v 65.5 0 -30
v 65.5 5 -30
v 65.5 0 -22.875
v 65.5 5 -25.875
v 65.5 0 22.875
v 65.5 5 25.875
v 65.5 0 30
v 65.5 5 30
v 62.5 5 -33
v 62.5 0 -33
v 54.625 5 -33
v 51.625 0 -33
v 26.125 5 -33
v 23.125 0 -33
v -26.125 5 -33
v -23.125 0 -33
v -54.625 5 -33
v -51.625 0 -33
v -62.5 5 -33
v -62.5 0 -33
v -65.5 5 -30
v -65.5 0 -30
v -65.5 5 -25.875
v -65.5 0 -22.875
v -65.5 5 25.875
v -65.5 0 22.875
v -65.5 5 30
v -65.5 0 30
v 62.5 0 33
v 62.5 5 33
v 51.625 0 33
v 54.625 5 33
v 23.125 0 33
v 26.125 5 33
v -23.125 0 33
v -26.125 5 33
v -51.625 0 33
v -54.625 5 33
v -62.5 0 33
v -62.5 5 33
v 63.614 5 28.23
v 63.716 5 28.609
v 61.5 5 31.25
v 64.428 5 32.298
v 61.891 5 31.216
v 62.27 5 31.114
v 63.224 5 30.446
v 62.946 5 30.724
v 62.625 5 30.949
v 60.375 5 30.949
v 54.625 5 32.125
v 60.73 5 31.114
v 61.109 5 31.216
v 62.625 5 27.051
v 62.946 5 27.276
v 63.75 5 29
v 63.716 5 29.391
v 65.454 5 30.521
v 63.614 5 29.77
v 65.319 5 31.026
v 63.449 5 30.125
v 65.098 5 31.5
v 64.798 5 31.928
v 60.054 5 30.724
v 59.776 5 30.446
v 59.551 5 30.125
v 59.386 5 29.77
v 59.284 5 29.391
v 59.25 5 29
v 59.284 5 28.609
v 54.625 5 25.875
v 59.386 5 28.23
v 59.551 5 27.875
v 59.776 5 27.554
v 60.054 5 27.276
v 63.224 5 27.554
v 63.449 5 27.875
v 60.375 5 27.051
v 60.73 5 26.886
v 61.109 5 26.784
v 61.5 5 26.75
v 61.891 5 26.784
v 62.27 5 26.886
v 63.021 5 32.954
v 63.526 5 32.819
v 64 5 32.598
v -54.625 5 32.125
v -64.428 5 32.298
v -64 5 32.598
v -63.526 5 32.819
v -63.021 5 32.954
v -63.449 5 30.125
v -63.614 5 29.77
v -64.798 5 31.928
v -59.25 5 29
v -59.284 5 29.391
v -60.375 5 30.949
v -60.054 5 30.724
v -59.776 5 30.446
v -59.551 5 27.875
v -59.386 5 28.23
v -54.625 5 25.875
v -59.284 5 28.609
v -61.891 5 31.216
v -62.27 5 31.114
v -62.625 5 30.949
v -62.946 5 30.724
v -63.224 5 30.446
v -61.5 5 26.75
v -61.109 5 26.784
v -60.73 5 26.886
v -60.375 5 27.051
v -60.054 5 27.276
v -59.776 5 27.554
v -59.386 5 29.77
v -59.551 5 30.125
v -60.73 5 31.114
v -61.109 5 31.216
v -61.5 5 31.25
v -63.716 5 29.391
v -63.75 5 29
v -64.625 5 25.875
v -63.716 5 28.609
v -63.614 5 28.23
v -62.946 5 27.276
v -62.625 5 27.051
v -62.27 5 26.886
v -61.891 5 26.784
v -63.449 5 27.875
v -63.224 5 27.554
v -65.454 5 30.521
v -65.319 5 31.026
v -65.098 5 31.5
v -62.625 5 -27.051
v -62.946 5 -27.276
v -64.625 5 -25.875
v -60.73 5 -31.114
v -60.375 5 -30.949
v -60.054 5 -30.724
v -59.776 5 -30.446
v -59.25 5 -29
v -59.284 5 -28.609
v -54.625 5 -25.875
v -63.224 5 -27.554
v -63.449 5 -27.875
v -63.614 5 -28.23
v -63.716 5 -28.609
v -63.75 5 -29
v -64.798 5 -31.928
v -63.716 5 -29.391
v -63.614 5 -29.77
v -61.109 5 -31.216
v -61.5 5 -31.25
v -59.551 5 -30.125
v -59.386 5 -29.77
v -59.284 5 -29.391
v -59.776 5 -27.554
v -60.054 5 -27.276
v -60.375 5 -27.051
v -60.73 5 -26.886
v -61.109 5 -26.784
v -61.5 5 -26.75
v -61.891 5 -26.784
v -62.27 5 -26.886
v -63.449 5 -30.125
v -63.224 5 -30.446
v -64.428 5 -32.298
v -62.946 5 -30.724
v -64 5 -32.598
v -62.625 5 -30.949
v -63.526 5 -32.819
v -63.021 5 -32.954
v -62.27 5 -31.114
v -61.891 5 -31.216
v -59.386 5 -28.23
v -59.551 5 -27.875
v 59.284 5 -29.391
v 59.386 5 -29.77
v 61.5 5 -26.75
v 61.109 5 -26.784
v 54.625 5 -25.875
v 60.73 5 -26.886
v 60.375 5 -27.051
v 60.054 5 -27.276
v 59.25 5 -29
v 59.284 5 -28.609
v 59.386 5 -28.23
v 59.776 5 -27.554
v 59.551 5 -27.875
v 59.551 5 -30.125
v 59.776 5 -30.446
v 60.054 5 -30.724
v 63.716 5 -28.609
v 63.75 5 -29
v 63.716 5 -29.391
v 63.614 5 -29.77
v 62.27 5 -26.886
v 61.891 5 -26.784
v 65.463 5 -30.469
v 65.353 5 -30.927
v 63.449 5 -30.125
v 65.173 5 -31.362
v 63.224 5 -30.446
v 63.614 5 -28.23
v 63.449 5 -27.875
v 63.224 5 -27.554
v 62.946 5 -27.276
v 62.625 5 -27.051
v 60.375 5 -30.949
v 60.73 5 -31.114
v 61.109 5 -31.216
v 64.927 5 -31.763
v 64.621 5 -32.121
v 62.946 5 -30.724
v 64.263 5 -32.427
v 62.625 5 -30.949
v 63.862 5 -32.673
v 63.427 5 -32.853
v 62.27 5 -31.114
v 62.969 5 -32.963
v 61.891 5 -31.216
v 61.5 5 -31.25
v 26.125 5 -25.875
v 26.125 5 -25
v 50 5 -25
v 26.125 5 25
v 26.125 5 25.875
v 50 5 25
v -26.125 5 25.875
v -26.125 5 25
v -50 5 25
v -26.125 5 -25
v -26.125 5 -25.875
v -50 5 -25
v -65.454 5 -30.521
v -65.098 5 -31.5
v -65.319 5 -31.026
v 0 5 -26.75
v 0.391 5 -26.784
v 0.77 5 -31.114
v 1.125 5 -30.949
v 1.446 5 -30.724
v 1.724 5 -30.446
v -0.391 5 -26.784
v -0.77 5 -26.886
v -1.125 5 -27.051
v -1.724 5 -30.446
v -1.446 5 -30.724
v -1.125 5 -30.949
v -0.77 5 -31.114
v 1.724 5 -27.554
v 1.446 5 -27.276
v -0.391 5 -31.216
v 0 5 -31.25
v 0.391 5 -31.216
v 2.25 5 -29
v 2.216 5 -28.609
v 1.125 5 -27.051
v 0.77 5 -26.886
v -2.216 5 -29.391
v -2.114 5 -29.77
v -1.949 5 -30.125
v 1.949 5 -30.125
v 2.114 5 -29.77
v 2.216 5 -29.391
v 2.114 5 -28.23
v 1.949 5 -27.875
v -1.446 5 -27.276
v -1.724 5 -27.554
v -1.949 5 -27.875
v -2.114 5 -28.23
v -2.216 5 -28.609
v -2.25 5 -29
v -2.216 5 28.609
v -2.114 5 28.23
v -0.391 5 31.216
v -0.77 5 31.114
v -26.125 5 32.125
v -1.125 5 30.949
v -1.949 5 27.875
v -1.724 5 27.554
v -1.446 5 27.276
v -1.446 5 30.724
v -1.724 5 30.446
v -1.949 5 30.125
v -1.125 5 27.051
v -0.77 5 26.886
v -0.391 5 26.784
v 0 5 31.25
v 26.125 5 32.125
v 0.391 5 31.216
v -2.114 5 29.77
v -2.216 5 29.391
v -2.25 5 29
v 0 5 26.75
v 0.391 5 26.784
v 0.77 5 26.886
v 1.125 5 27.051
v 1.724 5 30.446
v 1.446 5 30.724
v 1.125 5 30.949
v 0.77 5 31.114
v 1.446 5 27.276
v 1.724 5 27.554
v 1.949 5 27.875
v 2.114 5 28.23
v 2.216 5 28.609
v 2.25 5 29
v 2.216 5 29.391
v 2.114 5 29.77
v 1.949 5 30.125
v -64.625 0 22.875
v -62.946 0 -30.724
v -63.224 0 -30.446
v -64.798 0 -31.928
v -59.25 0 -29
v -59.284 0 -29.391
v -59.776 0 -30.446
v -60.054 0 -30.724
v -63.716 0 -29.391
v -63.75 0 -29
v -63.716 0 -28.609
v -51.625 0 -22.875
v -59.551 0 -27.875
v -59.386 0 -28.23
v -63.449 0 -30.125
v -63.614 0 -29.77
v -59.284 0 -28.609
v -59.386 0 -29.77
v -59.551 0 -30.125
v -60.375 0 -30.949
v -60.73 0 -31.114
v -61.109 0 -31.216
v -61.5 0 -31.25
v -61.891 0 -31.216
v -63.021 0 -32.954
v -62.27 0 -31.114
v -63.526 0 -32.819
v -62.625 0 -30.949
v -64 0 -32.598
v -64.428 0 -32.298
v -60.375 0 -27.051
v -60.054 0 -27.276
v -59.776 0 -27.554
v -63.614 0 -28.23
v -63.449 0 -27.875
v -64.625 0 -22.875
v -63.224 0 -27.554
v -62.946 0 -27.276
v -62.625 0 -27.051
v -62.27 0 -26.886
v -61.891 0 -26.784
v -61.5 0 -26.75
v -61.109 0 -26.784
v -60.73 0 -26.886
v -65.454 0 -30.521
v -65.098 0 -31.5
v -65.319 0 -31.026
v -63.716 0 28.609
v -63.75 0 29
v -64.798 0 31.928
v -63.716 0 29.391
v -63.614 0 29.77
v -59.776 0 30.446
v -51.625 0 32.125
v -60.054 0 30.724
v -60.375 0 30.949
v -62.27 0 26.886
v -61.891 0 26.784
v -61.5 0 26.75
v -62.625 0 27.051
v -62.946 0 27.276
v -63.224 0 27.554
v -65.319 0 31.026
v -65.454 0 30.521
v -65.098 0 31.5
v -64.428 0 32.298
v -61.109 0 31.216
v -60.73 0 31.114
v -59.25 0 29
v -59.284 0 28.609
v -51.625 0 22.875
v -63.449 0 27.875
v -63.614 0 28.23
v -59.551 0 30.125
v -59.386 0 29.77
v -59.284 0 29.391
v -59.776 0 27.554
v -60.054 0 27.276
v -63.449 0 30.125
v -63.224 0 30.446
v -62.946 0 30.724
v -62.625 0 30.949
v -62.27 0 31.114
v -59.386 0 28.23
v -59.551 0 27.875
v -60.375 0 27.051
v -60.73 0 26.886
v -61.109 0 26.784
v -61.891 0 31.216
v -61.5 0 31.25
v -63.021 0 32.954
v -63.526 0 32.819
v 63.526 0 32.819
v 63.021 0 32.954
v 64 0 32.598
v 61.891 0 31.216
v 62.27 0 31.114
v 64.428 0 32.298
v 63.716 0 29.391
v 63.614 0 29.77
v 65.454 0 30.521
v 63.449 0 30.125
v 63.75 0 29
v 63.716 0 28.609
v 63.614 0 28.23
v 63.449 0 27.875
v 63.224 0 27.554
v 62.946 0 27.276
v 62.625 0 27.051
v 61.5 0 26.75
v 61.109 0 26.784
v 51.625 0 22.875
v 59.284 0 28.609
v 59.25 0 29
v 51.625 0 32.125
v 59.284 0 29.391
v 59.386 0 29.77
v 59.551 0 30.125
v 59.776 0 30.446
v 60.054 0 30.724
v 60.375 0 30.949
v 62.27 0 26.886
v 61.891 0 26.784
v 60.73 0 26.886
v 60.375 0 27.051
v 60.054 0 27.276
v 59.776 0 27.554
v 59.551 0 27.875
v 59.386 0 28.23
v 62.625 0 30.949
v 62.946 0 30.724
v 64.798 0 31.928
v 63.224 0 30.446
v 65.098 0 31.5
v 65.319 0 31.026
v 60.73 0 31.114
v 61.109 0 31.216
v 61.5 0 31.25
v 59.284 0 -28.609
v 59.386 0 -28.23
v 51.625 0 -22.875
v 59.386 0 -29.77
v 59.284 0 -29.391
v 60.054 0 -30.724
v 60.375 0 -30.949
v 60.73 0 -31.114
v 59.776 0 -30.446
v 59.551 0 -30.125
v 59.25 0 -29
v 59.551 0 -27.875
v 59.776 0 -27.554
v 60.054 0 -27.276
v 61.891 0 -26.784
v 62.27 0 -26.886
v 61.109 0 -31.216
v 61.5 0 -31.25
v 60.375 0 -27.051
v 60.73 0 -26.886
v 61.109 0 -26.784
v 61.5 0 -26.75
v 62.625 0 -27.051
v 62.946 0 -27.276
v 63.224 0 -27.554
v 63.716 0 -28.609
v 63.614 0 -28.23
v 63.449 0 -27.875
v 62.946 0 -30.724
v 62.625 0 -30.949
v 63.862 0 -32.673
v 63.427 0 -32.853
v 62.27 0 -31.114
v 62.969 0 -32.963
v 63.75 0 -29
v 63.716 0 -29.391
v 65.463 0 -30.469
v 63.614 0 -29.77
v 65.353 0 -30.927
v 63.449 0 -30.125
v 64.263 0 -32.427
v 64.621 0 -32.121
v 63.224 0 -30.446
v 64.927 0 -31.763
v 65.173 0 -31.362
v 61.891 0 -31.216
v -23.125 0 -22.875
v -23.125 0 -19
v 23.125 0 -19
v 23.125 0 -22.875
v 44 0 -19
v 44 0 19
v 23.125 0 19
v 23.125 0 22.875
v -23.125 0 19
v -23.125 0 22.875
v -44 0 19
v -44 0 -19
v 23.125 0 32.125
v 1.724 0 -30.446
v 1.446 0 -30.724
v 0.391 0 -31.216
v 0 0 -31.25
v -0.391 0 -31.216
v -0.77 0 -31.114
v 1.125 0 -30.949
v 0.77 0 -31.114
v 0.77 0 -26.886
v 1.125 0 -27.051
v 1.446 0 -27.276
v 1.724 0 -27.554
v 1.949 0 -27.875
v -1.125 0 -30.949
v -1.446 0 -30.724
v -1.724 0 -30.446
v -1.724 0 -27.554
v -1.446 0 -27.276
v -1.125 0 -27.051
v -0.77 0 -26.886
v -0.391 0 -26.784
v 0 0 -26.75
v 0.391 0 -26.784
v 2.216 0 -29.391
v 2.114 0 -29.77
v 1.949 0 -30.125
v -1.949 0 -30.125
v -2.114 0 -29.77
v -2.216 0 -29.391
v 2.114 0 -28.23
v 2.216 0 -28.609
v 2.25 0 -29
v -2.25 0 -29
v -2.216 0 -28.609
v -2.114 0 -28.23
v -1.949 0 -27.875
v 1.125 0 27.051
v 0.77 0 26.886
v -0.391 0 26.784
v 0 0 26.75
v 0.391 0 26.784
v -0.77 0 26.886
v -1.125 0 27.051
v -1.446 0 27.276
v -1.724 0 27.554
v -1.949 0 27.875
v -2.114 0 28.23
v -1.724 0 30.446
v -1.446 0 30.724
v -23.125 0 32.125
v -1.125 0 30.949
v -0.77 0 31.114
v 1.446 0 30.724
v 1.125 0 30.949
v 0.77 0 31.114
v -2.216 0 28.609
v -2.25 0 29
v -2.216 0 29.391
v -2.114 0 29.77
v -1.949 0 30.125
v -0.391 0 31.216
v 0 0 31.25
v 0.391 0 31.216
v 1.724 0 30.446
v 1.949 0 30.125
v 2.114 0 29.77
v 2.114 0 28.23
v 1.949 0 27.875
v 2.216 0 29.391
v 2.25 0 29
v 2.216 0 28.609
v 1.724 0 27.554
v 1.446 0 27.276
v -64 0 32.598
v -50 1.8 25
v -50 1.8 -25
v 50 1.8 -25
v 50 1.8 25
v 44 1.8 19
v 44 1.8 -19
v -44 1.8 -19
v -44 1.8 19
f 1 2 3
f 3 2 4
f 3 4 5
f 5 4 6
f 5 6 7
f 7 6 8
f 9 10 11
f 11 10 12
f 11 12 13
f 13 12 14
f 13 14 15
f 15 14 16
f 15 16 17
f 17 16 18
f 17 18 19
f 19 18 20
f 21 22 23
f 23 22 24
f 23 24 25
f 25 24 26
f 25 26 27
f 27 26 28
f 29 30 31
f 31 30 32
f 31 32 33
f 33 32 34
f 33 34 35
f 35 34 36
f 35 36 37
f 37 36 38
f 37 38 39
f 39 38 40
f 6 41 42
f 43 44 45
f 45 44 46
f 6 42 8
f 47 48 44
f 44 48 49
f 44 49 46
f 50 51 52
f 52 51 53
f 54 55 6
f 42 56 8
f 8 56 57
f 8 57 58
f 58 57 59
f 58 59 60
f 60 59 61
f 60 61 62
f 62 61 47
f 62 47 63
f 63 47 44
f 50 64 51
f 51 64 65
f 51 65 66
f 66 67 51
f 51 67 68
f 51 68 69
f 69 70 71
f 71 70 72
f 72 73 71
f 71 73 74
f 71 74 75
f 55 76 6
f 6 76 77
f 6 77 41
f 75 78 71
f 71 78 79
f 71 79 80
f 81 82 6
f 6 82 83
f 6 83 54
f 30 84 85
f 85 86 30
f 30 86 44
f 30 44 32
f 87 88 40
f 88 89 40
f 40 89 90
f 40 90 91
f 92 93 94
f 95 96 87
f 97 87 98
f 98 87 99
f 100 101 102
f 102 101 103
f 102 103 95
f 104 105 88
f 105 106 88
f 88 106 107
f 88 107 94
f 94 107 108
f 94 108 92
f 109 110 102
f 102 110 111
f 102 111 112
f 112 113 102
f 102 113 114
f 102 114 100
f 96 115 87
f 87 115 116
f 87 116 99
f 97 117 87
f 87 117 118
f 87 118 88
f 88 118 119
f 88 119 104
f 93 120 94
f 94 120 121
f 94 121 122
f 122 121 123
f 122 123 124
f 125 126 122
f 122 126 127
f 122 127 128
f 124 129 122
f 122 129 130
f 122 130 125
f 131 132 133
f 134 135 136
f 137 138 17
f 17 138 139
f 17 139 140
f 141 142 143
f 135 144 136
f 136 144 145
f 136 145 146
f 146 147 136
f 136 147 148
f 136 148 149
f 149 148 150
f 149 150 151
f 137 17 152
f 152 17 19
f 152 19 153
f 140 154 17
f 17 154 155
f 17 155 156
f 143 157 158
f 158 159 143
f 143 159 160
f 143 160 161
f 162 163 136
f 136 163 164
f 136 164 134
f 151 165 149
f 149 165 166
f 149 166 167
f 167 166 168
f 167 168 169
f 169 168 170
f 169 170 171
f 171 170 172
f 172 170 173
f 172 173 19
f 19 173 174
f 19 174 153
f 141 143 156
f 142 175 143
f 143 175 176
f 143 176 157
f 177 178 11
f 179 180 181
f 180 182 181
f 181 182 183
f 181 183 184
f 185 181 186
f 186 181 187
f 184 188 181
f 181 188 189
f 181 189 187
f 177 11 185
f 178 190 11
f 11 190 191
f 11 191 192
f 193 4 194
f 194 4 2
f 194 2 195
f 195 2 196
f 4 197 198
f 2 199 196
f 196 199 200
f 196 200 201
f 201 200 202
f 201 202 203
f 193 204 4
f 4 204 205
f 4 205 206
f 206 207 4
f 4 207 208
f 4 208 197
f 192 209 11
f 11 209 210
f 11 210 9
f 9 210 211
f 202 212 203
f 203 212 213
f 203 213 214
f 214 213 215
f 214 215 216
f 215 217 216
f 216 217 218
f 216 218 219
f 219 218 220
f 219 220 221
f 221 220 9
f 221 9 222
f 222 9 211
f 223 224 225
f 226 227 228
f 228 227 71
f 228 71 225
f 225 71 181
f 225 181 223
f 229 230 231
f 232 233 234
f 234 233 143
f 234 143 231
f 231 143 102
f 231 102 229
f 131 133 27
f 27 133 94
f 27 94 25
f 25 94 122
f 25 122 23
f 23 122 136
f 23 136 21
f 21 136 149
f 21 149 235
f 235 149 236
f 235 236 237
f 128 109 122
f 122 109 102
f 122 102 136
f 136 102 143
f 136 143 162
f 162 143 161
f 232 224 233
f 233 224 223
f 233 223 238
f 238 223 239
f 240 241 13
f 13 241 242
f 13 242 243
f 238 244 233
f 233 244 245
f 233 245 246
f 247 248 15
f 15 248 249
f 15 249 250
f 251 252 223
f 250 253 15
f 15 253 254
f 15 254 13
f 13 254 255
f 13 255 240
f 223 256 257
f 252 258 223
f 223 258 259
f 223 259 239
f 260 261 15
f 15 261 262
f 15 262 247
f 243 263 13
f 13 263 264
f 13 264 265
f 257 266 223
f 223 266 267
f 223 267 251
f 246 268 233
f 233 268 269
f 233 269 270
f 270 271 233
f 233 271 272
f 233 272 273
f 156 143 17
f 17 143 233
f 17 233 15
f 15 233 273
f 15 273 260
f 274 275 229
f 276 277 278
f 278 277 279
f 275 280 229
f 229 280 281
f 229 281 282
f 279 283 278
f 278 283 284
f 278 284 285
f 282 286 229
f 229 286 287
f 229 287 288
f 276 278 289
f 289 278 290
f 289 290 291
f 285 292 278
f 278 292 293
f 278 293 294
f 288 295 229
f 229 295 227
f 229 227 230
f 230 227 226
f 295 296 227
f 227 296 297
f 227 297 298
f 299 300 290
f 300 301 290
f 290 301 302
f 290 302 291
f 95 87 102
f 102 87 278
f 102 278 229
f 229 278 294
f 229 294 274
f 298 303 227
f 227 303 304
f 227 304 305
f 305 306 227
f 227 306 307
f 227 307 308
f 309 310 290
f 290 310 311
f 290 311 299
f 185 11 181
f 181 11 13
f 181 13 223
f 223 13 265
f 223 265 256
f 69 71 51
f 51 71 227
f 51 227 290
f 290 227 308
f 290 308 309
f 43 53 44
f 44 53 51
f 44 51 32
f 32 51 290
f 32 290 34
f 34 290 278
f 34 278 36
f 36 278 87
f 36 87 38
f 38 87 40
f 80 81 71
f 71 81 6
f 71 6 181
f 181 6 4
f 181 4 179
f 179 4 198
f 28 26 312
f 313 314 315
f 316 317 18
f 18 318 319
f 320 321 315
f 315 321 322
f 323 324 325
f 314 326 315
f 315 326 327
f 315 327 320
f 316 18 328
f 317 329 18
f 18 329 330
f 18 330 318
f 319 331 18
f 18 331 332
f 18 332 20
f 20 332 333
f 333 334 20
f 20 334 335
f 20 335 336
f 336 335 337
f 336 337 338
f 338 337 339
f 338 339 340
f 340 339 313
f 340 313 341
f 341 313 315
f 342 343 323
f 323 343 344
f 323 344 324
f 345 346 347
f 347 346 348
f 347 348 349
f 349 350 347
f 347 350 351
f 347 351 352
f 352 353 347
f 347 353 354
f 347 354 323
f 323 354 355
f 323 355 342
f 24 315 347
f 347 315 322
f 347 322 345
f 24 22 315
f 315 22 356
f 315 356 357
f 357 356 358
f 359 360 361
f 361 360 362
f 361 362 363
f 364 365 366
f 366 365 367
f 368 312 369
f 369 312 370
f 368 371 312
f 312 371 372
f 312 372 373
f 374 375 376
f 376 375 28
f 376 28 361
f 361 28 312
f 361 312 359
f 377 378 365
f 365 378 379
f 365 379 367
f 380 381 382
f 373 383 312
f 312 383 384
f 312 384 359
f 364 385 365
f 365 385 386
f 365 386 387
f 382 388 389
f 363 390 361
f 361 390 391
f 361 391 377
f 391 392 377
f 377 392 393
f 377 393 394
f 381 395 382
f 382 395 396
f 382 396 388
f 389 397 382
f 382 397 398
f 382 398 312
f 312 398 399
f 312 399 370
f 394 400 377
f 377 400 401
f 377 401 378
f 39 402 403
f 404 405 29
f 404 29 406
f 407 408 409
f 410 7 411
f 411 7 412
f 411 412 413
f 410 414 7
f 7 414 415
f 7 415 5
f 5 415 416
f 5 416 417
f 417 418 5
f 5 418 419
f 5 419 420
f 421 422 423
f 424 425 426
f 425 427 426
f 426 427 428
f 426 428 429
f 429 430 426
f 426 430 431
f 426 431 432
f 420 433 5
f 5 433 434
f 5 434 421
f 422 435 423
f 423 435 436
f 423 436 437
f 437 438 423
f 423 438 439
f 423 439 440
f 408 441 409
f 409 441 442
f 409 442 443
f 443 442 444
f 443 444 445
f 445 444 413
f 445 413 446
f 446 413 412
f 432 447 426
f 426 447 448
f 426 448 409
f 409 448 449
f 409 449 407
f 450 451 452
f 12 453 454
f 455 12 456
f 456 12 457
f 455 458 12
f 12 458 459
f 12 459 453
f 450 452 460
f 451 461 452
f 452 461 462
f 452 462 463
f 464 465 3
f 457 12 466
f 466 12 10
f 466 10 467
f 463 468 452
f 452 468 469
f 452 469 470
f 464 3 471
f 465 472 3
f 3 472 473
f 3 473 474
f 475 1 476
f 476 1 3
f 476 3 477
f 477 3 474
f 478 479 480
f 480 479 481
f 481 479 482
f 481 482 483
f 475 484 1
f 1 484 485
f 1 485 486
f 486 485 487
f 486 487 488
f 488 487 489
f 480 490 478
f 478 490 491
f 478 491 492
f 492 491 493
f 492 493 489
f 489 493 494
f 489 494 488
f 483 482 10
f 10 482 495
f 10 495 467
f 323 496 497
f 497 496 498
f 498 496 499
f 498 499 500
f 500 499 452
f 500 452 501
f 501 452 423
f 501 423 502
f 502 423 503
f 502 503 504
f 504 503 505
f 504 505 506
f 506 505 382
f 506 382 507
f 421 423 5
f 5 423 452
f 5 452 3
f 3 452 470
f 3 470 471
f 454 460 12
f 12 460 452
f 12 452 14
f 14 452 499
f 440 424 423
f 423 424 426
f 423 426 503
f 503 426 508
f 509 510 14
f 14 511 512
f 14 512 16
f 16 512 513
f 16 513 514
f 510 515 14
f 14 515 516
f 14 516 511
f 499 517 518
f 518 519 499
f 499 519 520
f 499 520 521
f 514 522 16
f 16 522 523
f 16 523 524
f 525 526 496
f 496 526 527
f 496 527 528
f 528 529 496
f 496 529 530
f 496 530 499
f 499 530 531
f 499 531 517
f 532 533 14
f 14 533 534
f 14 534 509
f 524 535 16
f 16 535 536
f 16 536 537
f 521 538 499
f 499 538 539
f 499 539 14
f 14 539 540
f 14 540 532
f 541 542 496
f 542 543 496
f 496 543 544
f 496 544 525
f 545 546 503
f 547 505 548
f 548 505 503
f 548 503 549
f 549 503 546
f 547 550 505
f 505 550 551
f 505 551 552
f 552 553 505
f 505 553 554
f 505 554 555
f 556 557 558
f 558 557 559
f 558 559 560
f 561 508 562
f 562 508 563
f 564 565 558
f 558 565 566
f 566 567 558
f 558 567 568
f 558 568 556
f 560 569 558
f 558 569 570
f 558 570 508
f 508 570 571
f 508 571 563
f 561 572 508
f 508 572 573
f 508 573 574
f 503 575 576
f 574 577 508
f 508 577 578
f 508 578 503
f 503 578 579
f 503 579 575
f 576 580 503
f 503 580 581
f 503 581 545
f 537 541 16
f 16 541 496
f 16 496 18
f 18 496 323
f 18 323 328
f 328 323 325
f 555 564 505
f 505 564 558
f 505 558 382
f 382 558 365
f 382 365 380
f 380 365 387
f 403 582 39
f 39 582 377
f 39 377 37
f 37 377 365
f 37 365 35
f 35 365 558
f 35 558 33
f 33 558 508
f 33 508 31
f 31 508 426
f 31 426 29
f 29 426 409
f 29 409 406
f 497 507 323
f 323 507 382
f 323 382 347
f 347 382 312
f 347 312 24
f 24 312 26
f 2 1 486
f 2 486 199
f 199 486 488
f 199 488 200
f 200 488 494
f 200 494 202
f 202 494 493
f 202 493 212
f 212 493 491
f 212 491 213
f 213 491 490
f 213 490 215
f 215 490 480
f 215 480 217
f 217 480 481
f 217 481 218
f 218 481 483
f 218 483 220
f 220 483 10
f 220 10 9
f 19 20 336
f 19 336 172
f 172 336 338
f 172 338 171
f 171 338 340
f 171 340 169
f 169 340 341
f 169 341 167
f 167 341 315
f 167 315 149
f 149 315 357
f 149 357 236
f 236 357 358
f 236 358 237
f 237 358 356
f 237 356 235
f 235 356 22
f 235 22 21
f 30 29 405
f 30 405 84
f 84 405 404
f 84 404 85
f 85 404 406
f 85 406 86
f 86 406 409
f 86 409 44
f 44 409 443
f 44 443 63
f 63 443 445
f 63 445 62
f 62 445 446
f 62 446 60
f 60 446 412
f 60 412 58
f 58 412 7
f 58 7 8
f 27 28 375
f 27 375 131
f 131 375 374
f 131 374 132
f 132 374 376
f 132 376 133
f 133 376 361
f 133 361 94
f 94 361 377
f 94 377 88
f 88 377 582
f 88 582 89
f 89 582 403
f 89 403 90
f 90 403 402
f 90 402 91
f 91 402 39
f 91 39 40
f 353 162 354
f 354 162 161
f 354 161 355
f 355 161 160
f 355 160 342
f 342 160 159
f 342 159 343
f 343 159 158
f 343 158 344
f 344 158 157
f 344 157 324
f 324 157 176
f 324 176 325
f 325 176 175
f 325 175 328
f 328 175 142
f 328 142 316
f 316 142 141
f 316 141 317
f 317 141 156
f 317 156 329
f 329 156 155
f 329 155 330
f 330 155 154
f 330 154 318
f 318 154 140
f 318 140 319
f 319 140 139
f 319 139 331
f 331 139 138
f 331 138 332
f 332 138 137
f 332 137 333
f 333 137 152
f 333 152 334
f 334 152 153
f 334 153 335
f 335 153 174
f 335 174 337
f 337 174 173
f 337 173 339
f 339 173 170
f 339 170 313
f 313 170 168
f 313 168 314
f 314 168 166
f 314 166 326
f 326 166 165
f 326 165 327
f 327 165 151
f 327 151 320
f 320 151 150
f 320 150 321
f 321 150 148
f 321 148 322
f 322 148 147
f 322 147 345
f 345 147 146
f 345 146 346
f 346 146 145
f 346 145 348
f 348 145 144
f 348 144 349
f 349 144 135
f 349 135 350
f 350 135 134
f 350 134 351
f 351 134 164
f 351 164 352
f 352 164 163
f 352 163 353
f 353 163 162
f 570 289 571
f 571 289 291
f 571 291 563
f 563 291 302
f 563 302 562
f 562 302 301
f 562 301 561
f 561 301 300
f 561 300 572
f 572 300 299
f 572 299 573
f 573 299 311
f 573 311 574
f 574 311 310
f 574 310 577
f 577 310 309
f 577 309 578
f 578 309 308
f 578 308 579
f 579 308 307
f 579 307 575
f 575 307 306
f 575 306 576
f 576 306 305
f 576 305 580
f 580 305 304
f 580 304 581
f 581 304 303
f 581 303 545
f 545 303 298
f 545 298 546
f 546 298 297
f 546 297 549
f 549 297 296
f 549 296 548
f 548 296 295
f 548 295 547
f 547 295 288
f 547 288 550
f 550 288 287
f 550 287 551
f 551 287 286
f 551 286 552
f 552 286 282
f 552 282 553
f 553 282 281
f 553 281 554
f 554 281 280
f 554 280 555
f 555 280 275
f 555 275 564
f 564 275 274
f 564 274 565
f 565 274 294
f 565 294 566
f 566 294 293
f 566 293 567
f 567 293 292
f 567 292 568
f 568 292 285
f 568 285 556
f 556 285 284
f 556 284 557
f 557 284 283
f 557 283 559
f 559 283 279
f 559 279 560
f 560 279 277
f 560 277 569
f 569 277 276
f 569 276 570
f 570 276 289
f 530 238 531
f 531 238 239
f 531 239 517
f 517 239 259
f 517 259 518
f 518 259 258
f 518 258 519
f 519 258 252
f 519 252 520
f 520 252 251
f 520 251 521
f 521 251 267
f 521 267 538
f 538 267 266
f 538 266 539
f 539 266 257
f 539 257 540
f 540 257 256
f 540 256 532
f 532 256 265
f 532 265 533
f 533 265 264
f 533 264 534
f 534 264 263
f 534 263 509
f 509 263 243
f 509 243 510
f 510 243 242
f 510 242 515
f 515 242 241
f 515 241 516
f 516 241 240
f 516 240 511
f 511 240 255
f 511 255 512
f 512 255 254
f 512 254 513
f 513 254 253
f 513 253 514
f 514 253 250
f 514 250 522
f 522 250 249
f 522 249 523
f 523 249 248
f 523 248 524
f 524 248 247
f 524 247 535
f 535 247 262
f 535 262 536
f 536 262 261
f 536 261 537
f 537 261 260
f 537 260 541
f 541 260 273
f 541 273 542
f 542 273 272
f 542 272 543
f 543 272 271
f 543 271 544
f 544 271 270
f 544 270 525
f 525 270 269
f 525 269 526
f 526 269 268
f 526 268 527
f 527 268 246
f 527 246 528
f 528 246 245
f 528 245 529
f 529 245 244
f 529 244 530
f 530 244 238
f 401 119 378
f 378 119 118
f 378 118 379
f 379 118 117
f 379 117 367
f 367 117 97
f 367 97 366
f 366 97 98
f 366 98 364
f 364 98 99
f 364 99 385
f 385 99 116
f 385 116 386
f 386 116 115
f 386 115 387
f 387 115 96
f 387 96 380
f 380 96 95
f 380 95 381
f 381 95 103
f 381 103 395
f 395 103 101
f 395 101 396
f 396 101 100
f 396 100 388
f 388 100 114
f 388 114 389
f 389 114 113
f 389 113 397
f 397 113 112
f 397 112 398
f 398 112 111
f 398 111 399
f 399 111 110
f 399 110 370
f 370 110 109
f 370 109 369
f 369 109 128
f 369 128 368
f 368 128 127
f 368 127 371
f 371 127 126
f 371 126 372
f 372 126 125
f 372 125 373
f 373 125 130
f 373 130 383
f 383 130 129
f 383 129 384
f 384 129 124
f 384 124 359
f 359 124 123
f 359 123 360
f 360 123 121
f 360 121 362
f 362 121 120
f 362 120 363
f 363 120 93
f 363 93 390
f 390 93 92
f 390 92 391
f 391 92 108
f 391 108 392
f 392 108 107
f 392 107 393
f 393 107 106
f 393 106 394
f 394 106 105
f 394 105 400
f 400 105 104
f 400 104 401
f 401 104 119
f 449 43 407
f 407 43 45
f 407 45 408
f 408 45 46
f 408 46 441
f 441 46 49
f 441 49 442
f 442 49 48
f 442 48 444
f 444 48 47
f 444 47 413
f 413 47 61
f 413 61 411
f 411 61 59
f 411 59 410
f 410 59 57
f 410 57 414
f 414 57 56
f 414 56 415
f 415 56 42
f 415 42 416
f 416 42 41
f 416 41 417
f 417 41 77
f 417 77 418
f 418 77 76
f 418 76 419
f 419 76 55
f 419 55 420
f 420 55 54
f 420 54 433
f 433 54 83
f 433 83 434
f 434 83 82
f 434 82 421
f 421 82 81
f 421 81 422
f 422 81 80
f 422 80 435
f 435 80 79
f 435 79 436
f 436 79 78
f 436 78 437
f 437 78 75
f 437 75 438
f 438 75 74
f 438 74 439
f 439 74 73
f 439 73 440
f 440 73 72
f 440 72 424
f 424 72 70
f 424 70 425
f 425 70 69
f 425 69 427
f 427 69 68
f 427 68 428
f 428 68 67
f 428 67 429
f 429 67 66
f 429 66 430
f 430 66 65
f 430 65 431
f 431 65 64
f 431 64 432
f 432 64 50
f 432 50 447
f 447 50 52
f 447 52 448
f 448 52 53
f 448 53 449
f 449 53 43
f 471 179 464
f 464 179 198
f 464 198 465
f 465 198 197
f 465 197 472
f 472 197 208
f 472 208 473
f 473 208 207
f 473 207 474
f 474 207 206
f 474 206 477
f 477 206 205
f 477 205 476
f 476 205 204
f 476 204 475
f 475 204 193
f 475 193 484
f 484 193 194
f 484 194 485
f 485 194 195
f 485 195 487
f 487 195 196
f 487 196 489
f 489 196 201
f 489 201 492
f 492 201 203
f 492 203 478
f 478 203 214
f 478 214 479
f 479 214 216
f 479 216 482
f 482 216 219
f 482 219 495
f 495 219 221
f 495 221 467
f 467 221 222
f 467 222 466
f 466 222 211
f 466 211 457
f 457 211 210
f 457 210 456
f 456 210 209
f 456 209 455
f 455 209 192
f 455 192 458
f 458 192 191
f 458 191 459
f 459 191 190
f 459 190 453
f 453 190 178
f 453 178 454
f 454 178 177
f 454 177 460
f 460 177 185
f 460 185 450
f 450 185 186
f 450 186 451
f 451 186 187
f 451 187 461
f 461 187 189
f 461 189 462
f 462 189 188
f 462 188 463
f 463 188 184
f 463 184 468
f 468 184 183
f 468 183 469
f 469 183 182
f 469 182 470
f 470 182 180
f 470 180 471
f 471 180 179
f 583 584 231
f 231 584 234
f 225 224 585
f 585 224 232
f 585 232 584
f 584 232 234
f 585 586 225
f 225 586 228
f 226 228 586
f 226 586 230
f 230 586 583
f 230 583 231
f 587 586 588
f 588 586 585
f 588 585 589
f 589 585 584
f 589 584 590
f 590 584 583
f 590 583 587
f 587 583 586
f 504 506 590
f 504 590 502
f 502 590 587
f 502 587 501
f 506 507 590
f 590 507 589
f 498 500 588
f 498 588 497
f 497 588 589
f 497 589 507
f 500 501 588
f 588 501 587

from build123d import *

# Parameters (mm, degrees)
SKETCH1_W           = 131
SKETCH1_H           = 66
BOSS_EXTRUDE1_DEPTH = 5
FILLET1_R           = 3
SKETCH2_R           = 2.25
CUT_EXTRUDE1_DEPTH  = 74.513604183
SKETCH3_W           = 100
SKETCH3_H           = 50
CUT_EXTRUDE2_DEPTH  = 3.2
SKETCH4_W           = 88
SKETCH4_H           = 38
CUT_EXTRUDE3_DEPTH  = 74.413145962


with BuildPart() as part:
    # Sketch1 → Boss-Extrude1 (new body)
    with BuildSketch(Plane(origin=(0, 0, 0), x_dir=(1, 0, 0), z_dir=(0, 1, 0))):
        Rectangle(SKETCH1_W, SKETCH1_H)
    extrude(amount=BOSS_EXTRUDE1_DEPTH)

    # Fillet1
    fillet1_edges = [part.edges().sort_by_distance(p)[0] for p in [
        (65.5, 2.5, 33),
        (-65.5, 2.5, 33),
        (-65.5, 2.5, -33),
        (65.5, 2.5, -33),
    ]]
    fillet(fillet1_edges, radius=FILLET1_R)

    # Sketch2 → Cut-Extrude1 (cut, through all)
    with BuildSketch(Plane(origin=(0, 5, 0), x_dir=(1, 0, 0), z_dir=(0, 1, 0))):
        with Locations(Location((-61.5, 29, 0), (0, 0, 270))):
            Circle(SKETCH2_R)
        with Locations(Location((61.5, 29, 0), (0, 0, 270))):
            Circle(SKETCH2_R)
        with Locations(Location((61.5, -29, 0), (0, 0, 270))):
            Circle(SKETCH2_R)
        with Locations(Location((-61.5, -29, 0), (0, 0, 270))):
            Circle(SKETCH2_R)
        with Locations(Location((0, 29, 0), (0, 0, 270))):
            Circle(SKETCH2_R)
        with Locations(Location((0, -29, 0), (0, 0, 270))):
            Circle(SKETCH2_R)
    extrude(amount=-CUT_EXTRUDE1_DEPTH, mode=Mode.SUBTRACT)

    # Sketch3 → Cut-Extrude2 (cut)
    with BuildSketch(Plane(origin=(0, 5, 0), x_dir=(1, 0, 0), z_dir=(0, 1, 0))):
        Rectangle(SKETCH3_W, SKETCH3_H)
    extrude(amount=-CUT_EXTRUDE2_DEPTH, mode=Mode.SUBTRACT)

    # Sketch4 → Cut-Extrude3 (cut, through all)
    with BuildSketch(Plane(origin=(0, 1.8, 0), x_dir=(1, 0, 0), z_dir=(0, 1, 0))):
        Rectangle(SKETCH4_W, SKETCH4_H)
    extrude(amount=-CUT_EXTRUDE3_DEPTH, mode=Mode.SUBTRACT)


solid = part.part
